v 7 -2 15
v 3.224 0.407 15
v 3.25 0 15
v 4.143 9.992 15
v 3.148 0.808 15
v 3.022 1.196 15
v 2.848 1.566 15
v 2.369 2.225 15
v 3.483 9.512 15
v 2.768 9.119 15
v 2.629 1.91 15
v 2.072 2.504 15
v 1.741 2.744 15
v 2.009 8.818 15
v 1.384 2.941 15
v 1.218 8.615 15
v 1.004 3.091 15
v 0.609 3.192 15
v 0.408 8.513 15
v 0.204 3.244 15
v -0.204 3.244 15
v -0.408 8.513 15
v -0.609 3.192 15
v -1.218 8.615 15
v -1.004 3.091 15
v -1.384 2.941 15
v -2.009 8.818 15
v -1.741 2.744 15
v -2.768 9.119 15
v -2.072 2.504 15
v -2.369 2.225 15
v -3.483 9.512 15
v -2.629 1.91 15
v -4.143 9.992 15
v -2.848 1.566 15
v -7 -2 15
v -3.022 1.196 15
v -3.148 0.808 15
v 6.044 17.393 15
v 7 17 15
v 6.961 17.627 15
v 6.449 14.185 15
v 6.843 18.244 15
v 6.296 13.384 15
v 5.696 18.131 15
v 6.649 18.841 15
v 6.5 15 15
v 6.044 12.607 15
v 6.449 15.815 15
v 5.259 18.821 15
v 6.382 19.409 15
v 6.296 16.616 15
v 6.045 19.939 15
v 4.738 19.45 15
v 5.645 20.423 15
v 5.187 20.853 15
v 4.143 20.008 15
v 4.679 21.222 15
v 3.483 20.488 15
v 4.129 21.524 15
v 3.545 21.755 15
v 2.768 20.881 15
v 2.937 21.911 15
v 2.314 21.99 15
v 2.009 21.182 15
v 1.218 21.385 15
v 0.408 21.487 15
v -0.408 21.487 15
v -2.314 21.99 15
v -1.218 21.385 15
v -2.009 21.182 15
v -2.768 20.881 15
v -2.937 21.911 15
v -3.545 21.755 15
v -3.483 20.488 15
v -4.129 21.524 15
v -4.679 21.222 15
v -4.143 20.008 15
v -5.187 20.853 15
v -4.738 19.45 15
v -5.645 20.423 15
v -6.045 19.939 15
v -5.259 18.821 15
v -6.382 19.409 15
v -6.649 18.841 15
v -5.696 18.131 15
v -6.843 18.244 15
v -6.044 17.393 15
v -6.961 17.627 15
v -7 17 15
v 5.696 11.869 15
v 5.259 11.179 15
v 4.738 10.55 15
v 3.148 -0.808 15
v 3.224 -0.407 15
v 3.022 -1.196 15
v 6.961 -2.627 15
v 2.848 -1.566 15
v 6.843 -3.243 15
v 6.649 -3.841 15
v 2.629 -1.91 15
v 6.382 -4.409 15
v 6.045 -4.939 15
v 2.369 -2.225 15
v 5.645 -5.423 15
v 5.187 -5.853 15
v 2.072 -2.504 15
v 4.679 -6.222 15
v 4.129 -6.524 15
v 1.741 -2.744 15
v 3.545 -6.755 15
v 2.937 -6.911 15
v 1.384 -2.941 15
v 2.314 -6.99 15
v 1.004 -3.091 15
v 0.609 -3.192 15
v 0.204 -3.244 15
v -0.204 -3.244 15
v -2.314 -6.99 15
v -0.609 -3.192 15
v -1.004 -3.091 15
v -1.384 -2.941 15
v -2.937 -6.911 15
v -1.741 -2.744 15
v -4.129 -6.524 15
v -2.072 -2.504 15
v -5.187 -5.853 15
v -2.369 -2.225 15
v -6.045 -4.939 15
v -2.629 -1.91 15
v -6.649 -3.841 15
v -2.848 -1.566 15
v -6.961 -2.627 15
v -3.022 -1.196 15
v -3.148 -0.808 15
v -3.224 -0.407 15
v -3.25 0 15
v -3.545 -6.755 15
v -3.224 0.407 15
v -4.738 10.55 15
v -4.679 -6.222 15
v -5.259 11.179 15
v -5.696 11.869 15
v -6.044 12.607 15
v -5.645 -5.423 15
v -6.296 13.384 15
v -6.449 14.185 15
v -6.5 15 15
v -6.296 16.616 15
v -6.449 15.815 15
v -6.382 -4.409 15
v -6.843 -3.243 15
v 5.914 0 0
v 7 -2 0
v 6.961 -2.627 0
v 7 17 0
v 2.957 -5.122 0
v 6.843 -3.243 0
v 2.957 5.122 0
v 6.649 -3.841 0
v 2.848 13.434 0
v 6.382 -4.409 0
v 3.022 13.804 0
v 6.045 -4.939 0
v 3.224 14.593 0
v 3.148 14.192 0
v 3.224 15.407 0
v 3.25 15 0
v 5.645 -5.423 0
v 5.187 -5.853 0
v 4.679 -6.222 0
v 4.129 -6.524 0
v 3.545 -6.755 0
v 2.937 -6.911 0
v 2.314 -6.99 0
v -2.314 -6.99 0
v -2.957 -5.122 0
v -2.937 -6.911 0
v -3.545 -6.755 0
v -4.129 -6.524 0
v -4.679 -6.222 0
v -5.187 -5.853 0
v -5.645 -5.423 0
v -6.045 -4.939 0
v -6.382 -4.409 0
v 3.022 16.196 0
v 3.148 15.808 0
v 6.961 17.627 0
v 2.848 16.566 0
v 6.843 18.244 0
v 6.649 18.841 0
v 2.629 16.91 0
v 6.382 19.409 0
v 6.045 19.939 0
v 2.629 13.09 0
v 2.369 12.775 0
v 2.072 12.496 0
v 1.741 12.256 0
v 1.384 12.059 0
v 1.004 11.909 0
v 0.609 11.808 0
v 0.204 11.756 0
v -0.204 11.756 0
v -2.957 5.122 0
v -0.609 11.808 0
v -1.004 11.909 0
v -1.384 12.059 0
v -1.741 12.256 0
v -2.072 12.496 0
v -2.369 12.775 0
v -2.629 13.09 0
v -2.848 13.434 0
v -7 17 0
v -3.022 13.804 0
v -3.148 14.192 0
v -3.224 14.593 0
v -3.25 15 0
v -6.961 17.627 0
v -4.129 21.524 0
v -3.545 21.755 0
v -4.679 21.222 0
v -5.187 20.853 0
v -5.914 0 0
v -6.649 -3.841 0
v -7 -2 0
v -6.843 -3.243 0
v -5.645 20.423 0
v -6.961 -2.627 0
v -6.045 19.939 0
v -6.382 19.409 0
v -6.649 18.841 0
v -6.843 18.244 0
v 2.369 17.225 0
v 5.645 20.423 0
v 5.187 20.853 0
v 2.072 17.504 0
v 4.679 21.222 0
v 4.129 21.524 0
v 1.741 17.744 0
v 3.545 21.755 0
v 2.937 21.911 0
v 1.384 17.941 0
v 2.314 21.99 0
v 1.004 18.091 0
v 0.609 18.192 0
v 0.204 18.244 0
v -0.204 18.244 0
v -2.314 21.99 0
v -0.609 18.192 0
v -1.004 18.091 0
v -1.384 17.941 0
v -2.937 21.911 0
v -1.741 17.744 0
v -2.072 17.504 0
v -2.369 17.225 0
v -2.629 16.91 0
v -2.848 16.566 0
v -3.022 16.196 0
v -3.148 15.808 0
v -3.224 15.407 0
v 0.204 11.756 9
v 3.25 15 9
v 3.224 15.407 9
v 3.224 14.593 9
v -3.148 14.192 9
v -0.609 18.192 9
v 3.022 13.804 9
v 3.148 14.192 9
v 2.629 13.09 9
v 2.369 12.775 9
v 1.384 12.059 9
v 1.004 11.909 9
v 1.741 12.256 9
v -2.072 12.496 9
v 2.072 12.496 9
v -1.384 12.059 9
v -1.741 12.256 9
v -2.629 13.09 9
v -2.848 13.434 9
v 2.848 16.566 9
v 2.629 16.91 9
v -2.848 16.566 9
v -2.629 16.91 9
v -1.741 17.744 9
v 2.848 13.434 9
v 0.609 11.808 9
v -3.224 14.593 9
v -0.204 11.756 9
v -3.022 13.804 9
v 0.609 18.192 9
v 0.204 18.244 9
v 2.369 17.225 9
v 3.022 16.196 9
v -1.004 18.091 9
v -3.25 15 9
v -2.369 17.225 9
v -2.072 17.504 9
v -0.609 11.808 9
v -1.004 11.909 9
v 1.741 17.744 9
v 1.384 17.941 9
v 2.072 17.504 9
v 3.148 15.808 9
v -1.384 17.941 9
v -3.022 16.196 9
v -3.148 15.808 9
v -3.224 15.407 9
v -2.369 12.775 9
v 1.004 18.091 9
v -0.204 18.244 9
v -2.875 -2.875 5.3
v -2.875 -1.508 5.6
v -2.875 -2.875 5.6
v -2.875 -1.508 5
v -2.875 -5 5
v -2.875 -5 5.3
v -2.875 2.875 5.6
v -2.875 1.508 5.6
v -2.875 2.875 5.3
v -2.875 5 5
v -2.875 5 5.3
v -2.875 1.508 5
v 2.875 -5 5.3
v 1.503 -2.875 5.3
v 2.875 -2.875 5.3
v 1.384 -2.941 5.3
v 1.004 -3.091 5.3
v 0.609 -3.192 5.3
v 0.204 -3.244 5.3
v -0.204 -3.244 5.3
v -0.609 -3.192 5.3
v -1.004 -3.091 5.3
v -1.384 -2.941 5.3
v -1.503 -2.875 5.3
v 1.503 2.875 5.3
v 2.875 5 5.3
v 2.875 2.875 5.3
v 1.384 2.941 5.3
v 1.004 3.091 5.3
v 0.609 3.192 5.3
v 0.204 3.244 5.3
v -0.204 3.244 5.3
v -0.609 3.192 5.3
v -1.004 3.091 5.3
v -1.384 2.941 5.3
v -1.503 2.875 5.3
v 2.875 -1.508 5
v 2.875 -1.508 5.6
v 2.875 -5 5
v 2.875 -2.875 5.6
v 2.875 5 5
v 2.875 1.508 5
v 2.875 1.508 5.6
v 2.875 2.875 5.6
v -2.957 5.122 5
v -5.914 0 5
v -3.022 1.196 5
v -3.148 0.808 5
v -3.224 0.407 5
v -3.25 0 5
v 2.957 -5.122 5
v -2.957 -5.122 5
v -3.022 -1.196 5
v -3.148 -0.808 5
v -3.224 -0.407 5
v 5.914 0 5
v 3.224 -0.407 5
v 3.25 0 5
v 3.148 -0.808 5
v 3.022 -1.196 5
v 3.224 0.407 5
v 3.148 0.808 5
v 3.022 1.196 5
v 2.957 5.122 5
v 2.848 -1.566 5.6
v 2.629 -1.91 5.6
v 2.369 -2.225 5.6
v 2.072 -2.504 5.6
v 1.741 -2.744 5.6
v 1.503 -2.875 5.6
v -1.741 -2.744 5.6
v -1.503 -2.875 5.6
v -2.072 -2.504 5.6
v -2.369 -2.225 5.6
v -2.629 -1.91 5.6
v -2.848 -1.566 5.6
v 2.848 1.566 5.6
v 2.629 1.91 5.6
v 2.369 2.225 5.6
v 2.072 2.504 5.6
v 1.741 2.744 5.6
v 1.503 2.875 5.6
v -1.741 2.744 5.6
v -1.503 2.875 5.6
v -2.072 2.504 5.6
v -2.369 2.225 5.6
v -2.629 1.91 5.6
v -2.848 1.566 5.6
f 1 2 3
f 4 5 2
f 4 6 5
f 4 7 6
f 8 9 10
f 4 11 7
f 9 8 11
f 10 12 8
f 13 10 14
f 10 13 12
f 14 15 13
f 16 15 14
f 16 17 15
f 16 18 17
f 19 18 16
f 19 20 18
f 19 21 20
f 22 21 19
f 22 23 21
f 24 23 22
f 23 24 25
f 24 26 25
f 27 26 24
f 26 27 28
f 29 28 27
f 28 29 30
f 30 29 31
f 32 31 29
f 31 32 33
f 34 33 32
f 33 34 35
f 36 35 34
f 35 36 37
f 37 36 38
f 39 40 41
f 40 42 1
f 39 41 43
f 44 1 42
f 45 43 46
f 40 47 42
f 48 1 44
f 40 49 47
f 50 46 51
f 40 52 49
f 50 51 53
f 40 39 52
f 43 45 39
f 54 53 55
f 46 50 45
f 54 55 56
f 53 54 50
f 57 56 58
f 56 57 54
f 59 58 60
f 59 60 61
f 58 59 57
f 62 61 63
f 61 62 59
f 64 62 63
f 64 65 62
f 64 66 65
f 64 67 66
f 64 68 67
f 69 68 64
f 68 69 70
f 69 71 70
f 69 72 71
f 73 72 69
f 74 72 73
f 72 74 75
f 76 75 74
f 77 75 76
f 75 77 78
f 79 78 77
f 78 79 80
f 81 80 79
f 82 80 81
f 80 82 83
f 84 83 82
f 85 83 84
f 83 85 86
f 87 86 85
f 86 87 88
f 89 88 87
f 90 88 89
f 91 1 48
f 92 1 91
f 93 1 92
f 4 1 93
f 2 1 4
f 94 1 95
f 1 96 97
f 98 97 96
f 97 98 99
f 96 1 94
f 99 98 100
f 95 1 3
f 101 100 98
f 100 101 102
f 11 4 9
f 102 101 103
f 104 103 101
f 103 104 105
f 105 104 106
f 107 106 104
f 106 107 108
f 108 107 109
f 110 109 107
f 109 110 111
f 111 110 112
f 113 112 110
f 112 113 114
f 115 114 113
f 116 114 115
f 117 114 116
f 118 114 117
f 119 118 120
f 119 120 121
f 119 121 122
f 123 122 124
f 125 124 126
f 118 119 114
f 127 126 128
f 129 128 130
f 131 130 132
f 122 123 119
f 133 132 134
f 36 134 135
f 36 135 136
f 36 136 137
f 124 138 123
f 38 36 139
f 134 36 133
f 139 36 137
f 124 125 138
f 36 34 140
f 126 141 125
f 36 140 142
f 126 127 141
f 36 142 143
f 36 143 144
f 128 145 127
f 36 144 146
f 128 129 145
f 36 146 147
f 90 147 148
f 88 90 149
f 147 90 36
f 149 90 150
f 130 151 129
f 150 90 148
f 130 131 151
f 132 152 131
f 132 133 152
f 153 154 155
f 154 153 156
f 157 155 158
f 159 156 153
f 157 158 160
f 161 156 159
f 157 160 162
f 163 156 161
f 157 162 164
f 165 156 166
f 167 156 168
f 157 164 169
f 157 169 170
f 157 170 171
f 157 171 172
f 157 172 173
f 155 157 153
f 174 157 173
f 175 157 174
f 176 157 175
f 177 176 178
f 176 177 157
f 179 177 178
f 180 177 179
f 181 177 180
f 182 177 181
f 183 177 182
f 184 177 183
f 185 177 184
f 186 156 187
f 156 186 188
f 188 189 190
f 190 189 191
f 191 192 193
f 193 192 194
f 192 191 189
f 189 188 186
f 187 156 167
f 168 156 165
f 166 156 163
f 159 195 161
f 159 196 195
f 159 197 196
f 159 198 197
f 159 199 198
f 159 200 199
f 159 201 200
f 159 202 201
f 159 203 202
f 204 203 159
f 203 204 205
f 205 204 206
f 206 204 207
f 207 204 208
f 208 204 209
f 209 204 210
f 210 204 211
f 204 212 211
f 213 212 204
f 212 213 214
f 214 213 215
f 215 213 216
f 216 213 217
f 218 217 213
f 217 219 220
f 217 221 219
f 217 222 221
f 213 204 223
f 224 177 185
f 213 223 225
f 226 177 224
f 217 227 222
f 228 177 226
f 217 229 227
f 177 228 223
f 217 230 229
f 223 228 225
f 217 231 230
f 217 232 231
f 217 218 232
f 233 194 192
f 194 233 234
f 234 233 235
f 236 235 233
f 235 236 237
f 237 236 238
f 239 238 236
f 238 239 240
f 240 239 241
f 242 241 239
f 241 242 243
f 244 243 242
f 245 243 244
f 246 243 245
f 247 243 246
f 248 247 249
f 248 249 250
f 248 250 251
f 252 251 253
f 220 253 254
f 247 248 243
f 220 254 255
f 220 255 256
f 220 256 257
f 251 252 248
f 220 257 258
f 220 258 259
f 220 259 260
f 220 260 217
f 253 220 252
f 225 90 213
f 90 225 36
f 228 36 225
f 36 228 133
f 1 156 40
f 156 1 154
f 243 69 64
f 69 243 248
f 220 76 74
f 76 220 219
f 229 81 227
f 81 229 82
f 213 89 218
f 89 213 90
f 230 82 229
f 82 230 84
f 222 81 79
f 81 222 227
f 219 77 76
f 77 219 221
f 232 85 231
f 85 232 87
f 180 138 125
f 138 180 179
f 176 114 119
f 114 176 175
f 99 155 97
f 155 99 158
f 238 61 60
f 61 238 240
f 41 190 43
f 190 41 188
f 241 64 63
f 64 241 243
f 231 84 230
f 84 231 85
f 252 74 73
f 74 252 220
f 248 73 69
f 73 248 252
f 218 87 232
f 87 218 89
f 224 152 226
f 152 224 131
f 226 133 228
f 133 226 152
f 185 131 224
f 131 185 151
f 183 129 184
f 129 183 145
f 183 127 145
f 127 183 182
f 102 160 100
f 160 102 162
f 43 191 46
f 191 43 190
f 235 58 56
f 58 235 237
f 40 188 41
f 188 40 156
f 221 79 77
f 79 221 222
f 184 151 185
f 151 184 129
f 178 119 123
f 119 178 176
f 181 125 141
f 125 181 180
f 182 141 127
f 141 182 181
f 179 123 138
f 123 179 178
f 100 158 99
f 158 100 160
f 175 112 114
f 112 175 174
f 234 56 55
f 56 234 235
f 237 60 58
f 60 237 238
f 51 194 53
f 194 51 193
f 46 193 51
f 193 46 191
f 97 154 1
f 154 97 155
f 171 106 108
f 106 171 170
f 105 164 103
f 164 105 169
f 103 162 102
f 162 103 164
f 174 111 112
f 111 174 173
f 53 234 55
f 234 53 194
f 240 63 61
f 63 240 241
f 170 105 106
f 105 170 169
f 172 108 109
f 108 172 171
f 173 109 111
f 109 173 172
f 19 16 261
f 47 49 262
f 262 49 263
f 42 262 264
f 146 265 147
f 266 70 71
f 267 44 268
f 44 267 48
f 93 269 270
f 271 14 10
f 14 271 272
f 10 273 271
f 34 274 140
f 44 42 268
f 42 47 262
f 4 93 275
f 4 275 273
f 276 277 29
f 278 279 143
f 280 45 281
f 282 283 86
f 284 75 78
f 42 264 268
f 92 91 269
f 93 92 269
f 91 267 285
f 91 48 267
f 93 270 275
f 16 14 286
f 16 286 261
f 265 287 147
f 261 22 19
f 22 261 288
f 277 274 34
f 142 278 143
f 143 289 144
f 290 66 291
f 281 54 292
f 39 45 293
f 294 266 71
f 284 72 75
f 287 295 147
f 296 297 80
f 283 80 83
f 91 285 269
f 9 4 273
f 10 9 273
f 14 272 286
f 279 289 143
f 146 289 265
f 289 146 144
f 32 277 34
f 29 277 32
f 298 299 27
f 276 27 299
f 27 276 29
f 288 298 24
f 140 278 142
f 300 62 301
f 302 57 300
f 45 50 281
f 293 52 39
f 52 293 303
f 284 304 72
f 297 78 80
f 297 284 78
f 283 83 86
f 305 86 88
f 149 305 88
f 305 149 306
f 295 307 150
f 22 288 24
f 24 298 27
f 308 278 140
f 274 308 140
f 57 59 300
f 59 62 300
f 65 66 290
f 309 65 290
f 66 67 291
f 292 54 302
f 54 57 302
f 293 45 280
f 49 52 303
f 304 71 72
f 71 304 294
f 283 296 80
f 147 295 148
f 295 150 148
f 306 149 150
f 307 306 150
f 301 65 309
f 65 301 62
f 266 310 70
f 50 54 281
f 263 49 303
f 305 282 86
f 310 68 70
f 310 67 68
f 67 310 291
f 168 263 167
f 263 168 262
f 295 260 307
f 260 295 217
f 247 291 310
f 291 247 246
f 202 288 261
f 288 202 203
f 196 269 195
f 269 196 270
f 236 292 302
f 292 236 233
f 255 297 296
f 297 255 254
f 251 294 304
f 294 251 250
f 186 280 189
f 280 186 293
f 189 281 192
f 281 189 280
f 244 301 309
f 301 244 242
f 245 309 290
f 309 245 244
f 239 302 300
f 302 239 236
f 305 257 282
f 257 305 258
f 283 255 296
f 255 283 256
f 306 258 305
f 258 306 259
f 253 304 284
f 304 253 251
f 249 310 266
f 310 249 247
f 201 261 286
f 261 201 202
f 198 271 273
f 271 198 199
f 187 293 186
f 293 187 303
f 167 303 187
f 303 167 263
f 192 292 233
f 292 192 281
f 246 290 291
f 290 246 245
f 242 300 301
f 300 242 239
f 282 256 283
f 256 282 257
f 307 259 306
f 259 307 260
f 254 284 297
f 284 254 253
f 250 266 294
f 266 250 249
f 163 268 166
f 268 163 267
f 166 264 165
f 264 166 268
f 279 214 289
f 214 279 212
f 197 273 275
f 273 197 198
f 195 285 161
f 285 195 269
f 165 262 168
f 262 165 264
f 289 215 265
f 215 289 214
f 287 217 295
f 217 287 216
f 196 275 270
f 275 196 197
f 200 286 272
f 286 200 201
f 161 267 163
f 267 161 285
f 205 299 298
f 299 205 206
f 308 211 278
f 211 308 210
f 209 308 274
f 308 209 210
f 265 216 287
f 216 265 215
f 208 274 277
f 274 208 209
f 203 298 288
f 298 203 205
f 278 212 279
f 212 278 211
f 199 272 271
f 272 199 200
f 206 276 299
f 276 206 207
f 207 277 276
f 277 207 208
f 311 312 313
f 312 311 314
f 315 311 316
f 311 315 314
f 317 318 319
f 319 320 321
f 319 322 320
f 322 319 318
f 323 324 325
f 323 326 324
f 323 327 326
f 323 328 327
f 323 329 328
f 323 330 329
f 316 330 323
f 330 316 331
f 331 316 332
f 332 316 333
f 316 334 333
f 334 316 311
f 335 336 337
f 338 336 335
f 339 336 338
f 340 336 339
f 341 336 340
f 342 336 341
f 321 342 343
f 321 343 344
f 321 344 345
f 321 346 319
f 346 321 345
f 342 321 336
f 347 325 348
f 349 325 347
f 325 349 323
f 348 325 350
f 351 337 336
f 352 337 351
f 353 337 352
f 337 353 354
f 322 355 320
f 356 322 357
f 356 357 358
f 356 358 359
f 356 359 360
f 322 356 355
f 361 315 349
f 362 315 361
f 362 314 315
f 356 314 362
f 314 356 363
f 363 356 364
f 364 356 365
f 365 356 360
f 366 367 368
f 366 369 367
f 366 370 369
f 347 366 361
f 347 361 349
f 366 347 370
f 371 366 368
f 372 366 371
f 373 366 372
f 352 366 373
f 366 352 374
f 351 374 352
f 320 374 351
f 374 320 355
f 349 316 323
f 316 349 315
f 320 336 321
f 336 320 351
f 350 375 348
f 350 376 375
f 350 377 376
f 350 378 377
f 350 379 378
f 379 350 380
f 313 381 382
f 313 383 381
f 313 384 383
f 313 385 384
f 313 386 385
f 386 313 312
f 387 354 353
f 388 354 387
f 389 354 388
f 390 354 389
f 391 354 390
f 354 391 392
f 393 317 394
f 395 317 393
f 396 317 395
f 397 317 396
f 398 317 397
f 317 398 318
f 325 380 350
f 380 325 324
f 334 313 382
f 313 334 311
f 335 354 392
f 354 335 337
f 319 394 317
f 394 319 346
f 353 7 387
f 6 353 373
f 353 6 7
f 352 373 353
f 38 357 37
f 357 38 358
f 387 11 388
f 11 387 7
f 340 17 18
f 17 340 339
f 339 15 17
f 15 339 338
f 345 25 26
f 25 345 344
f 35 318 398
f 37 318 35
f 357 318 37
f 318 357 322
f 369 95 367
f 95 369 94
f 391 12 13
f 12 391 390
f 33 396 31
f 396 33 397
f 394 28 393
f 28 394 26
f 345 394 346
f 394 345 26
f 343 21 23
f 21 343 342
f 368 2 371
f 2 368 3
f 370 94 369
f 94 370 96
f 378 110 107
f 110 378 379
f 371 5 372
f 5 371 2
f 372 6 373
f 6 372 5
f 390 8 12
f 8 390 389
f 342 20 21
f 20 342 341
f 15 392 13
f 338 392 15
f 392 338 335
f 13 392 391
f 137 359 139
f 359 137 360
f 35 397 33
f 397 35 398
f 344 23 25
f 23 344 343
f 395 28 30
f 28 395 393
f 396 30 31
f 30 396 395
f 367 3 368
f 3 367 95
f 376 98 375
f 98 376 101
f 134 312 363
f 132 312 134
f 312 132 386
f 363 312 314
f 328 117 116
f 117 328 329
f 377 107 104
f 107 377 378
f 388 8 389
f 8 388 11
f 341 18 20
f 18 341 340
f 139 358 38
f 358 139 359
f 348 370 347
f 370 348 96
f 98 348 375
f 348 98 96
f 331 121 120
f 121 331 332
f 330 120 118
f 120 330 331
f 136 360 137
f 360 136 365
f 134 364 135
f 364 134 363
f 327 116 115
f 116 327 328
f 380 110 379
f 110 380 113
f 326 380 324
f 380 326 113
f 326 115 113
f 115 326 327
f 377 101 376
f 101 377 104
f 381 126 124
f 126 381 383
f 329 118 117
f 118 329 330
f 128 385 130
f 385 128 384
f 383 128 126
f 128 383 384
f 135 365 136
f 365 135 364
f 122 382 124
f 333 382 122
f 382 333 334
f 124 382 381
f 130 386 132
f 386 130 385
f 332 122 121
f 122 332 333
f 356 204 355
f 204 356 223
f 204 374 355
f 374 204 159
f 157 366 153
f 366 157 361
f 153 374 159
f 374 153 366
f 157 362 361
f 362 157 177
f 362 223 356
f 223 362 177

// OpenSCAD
$fn = 50;


difference() {
	union() {
		cylinder(h = 15, r = 7.0000000000);
		translate(v = [0.0000000000, 7.5000000000, 0]) {
			hull() {
				translate(v = [-2.0000000000, 9.5000000000, 0]) {
					cylinder(h = 15, r = 5);
				}
				translate(v = [2.0000000000, 9.5000000000, 0]) {
					cylinder(h = 15, r = 5);
				}
				translate(v = [-2.0000000000, -9.5000000000, 0]) {
					cylinder(h = 15, r = 5);
				}
				translate(v = [2.0000000000, -9.5000000000, 0]) {
					cylinder(h = 15, r = 5);
				}
			}
		}
		translate(v = [0.0000000000, 7.5000000000, 0]) {
			hull() {
				translate(v = [-2.0000000000, 9.5000000000, 0]) {
					cylinder(h = 15, r = 5);
				}
				translate(v = [2.0000000000, 9.5000000000, 0]) {
					cylinder(h = 15, r = 5);
				}
				translate(v = [-2.0000000000, -9.5000000000, 0]) {
					cylinder(h = 15, r = 5);
				}
				translate(v = [2.0000000000, -9.5000000000, 0]) {
					cylinder(h = 15, r = 5);
				}
			}
		}
	}
	union() {
		translate(v = [0.0000000000, 15.0000000000, 15]) {
			rotate(a = [0, 0, 0]) {
				difference() {
					union() {
						#translate(v = [0, 0, -15.0000000000]) {
							cylinder(h = 15, r = 2.2500000000);
						}
						#translate(v = [0, 0, -6]) {
							cylinder(h = 6, r1 = 3.2500000000, r2 = 6.5000000000);
						}
						#translate(v = [0, 0, -15.0000000000]) {
							cylinder(h = 15, r = 3.2500000000);
						}
						#translate(v = [0, 0, -15.0000000000]) {
							cylinder(h = 15, r = 2.2500000000);
						}
					}
					union();
				}
			}
		}
		translate(v = [0.0000000000, 15.0000000000, 15]) {
			rotate(a = [0, 0, 0]) {
				difference() {
					union() {
						#translate(v = [0, 0, -15.0000000000]) {
							cylinder(h = 15, r = 2.2500000000);
						}
						#translate(v = [0, 0, -6]) {
							cylinder(h = 6, r1 = 3.2500000000, r2 = 6.5000000000);
						}
						#translate(v = [0, 0, -15.0000000000]) {
							cylinder(h = 15, r = 3.2500000000);
						}
						#translate(v = [0, 0, -15.0000000000]) {
							cylinder(h = 15, r = 2.2500000000);
						}
					}
					union();
				}
			}
		}
		translate(v = [0.0000000000, 0.0000000000, 0]) {
			rotate(a = [0, 0, 0]) {
				difference() {
					union() {
						#translate(v = [-2.8750000000, -5.0000000000, -0.3000000000]) {
							cube(size = [5.7500000000, 10, 0.3000000000]);
						}
						#translate(v = [-2.8750000000, -2.8750000000, -0.6000000000]) {
							cube(size = [5.7500000000, 5.7500000000, 0.3000000000]);
						}
						#translate(v = [-2.8750000000, -5.0000000000, 5]) {
							cube(size = [5.7500000000, 10, 0.3000000000]);
						}
						#translate(v = [-2.8750000000, -2.8750000000, 5.3000000000]) {
							cube(size = [5.7500000000, 5.7500000000, 0.3000000000]);
						}
						#translate(v = [0, 0, -100.0000000000]) {
							cylinder(h = 200, r = 3.2500000000);
						}
						#linear_extrude(height = 5) {
							polygon(points = [[5.9142500000, 0.0000000000], [2.9571250000, 5.1218907443], [-2.9571250000, 5.1218907443], [-5.9142500000, 0.0000000000], [-2.9571250000, -5.1218907443], [2.9571250000, -5.1218907443]]);
						}
						#translate(v = [-2.8750000000, -5.0000000000, -0.3000000000]) {
							cube(size = [5.7500000000, 10, 0.3000000000]);
						}
						#translate(v = [-2.8750000000, -2.8750000000, -0.6000000000]) {
							cube(size = [5.7500000000, 5.7500000000, 0.3000000000]);
						}
						#translate(v = [-2.8750000000, -5.0000000000, 5]) {
							cube(size = [5.7500000000, 10, 0.3000000000]);
						}
						#translate(v = [-2.8750000000, -2.8750000000, 5.3000000000]) {
							cube(size = [5.7500000000, 5.7500000000, 0.3000000000]);
						}
						#translate(v = [0, 0, -100.0000000000]) {
							cylinder(h = 200, r = 3.2500000000);
						}
						#translate(v = [-2.8750000000, -5.0000000000, -0.3000000000]) {
							cube(size = [5.7500000000, 10, 0.3000000000]);
						}
						#translate(v = [-2.8750000000, -2.8750000000, -0.6000000000]) {
							cube(size = [5.7500000000, 5.7500000000, 0.3000000000]);
						}
						#translate(v = [-2.8750000000, -5.0000000000, 5]) {
							cube(size = [5.7500000000, 10, 0.3000000000]);
						}
						#translate(v = [-2.8750000000, -2.8750000000, 5.3000000000]) {
							cube(size = [5.7500000000, 5.7500000000, 0.3000000000]);
						}
						#translate(v = [0, 0, -100.0000000000]) {
							cylinder(h = 200, r = 3.2500000000);
						}
					}
					union();
				}
			}
		}
		translate(v = [0, 0, -100]) {
			cylinder(h = 200, r = 3.2500000000);
		}
		translate(v = [0, 0, -100]) {
			cylinder(h = 200, r = 1.8000000000);
		}
	}
}
